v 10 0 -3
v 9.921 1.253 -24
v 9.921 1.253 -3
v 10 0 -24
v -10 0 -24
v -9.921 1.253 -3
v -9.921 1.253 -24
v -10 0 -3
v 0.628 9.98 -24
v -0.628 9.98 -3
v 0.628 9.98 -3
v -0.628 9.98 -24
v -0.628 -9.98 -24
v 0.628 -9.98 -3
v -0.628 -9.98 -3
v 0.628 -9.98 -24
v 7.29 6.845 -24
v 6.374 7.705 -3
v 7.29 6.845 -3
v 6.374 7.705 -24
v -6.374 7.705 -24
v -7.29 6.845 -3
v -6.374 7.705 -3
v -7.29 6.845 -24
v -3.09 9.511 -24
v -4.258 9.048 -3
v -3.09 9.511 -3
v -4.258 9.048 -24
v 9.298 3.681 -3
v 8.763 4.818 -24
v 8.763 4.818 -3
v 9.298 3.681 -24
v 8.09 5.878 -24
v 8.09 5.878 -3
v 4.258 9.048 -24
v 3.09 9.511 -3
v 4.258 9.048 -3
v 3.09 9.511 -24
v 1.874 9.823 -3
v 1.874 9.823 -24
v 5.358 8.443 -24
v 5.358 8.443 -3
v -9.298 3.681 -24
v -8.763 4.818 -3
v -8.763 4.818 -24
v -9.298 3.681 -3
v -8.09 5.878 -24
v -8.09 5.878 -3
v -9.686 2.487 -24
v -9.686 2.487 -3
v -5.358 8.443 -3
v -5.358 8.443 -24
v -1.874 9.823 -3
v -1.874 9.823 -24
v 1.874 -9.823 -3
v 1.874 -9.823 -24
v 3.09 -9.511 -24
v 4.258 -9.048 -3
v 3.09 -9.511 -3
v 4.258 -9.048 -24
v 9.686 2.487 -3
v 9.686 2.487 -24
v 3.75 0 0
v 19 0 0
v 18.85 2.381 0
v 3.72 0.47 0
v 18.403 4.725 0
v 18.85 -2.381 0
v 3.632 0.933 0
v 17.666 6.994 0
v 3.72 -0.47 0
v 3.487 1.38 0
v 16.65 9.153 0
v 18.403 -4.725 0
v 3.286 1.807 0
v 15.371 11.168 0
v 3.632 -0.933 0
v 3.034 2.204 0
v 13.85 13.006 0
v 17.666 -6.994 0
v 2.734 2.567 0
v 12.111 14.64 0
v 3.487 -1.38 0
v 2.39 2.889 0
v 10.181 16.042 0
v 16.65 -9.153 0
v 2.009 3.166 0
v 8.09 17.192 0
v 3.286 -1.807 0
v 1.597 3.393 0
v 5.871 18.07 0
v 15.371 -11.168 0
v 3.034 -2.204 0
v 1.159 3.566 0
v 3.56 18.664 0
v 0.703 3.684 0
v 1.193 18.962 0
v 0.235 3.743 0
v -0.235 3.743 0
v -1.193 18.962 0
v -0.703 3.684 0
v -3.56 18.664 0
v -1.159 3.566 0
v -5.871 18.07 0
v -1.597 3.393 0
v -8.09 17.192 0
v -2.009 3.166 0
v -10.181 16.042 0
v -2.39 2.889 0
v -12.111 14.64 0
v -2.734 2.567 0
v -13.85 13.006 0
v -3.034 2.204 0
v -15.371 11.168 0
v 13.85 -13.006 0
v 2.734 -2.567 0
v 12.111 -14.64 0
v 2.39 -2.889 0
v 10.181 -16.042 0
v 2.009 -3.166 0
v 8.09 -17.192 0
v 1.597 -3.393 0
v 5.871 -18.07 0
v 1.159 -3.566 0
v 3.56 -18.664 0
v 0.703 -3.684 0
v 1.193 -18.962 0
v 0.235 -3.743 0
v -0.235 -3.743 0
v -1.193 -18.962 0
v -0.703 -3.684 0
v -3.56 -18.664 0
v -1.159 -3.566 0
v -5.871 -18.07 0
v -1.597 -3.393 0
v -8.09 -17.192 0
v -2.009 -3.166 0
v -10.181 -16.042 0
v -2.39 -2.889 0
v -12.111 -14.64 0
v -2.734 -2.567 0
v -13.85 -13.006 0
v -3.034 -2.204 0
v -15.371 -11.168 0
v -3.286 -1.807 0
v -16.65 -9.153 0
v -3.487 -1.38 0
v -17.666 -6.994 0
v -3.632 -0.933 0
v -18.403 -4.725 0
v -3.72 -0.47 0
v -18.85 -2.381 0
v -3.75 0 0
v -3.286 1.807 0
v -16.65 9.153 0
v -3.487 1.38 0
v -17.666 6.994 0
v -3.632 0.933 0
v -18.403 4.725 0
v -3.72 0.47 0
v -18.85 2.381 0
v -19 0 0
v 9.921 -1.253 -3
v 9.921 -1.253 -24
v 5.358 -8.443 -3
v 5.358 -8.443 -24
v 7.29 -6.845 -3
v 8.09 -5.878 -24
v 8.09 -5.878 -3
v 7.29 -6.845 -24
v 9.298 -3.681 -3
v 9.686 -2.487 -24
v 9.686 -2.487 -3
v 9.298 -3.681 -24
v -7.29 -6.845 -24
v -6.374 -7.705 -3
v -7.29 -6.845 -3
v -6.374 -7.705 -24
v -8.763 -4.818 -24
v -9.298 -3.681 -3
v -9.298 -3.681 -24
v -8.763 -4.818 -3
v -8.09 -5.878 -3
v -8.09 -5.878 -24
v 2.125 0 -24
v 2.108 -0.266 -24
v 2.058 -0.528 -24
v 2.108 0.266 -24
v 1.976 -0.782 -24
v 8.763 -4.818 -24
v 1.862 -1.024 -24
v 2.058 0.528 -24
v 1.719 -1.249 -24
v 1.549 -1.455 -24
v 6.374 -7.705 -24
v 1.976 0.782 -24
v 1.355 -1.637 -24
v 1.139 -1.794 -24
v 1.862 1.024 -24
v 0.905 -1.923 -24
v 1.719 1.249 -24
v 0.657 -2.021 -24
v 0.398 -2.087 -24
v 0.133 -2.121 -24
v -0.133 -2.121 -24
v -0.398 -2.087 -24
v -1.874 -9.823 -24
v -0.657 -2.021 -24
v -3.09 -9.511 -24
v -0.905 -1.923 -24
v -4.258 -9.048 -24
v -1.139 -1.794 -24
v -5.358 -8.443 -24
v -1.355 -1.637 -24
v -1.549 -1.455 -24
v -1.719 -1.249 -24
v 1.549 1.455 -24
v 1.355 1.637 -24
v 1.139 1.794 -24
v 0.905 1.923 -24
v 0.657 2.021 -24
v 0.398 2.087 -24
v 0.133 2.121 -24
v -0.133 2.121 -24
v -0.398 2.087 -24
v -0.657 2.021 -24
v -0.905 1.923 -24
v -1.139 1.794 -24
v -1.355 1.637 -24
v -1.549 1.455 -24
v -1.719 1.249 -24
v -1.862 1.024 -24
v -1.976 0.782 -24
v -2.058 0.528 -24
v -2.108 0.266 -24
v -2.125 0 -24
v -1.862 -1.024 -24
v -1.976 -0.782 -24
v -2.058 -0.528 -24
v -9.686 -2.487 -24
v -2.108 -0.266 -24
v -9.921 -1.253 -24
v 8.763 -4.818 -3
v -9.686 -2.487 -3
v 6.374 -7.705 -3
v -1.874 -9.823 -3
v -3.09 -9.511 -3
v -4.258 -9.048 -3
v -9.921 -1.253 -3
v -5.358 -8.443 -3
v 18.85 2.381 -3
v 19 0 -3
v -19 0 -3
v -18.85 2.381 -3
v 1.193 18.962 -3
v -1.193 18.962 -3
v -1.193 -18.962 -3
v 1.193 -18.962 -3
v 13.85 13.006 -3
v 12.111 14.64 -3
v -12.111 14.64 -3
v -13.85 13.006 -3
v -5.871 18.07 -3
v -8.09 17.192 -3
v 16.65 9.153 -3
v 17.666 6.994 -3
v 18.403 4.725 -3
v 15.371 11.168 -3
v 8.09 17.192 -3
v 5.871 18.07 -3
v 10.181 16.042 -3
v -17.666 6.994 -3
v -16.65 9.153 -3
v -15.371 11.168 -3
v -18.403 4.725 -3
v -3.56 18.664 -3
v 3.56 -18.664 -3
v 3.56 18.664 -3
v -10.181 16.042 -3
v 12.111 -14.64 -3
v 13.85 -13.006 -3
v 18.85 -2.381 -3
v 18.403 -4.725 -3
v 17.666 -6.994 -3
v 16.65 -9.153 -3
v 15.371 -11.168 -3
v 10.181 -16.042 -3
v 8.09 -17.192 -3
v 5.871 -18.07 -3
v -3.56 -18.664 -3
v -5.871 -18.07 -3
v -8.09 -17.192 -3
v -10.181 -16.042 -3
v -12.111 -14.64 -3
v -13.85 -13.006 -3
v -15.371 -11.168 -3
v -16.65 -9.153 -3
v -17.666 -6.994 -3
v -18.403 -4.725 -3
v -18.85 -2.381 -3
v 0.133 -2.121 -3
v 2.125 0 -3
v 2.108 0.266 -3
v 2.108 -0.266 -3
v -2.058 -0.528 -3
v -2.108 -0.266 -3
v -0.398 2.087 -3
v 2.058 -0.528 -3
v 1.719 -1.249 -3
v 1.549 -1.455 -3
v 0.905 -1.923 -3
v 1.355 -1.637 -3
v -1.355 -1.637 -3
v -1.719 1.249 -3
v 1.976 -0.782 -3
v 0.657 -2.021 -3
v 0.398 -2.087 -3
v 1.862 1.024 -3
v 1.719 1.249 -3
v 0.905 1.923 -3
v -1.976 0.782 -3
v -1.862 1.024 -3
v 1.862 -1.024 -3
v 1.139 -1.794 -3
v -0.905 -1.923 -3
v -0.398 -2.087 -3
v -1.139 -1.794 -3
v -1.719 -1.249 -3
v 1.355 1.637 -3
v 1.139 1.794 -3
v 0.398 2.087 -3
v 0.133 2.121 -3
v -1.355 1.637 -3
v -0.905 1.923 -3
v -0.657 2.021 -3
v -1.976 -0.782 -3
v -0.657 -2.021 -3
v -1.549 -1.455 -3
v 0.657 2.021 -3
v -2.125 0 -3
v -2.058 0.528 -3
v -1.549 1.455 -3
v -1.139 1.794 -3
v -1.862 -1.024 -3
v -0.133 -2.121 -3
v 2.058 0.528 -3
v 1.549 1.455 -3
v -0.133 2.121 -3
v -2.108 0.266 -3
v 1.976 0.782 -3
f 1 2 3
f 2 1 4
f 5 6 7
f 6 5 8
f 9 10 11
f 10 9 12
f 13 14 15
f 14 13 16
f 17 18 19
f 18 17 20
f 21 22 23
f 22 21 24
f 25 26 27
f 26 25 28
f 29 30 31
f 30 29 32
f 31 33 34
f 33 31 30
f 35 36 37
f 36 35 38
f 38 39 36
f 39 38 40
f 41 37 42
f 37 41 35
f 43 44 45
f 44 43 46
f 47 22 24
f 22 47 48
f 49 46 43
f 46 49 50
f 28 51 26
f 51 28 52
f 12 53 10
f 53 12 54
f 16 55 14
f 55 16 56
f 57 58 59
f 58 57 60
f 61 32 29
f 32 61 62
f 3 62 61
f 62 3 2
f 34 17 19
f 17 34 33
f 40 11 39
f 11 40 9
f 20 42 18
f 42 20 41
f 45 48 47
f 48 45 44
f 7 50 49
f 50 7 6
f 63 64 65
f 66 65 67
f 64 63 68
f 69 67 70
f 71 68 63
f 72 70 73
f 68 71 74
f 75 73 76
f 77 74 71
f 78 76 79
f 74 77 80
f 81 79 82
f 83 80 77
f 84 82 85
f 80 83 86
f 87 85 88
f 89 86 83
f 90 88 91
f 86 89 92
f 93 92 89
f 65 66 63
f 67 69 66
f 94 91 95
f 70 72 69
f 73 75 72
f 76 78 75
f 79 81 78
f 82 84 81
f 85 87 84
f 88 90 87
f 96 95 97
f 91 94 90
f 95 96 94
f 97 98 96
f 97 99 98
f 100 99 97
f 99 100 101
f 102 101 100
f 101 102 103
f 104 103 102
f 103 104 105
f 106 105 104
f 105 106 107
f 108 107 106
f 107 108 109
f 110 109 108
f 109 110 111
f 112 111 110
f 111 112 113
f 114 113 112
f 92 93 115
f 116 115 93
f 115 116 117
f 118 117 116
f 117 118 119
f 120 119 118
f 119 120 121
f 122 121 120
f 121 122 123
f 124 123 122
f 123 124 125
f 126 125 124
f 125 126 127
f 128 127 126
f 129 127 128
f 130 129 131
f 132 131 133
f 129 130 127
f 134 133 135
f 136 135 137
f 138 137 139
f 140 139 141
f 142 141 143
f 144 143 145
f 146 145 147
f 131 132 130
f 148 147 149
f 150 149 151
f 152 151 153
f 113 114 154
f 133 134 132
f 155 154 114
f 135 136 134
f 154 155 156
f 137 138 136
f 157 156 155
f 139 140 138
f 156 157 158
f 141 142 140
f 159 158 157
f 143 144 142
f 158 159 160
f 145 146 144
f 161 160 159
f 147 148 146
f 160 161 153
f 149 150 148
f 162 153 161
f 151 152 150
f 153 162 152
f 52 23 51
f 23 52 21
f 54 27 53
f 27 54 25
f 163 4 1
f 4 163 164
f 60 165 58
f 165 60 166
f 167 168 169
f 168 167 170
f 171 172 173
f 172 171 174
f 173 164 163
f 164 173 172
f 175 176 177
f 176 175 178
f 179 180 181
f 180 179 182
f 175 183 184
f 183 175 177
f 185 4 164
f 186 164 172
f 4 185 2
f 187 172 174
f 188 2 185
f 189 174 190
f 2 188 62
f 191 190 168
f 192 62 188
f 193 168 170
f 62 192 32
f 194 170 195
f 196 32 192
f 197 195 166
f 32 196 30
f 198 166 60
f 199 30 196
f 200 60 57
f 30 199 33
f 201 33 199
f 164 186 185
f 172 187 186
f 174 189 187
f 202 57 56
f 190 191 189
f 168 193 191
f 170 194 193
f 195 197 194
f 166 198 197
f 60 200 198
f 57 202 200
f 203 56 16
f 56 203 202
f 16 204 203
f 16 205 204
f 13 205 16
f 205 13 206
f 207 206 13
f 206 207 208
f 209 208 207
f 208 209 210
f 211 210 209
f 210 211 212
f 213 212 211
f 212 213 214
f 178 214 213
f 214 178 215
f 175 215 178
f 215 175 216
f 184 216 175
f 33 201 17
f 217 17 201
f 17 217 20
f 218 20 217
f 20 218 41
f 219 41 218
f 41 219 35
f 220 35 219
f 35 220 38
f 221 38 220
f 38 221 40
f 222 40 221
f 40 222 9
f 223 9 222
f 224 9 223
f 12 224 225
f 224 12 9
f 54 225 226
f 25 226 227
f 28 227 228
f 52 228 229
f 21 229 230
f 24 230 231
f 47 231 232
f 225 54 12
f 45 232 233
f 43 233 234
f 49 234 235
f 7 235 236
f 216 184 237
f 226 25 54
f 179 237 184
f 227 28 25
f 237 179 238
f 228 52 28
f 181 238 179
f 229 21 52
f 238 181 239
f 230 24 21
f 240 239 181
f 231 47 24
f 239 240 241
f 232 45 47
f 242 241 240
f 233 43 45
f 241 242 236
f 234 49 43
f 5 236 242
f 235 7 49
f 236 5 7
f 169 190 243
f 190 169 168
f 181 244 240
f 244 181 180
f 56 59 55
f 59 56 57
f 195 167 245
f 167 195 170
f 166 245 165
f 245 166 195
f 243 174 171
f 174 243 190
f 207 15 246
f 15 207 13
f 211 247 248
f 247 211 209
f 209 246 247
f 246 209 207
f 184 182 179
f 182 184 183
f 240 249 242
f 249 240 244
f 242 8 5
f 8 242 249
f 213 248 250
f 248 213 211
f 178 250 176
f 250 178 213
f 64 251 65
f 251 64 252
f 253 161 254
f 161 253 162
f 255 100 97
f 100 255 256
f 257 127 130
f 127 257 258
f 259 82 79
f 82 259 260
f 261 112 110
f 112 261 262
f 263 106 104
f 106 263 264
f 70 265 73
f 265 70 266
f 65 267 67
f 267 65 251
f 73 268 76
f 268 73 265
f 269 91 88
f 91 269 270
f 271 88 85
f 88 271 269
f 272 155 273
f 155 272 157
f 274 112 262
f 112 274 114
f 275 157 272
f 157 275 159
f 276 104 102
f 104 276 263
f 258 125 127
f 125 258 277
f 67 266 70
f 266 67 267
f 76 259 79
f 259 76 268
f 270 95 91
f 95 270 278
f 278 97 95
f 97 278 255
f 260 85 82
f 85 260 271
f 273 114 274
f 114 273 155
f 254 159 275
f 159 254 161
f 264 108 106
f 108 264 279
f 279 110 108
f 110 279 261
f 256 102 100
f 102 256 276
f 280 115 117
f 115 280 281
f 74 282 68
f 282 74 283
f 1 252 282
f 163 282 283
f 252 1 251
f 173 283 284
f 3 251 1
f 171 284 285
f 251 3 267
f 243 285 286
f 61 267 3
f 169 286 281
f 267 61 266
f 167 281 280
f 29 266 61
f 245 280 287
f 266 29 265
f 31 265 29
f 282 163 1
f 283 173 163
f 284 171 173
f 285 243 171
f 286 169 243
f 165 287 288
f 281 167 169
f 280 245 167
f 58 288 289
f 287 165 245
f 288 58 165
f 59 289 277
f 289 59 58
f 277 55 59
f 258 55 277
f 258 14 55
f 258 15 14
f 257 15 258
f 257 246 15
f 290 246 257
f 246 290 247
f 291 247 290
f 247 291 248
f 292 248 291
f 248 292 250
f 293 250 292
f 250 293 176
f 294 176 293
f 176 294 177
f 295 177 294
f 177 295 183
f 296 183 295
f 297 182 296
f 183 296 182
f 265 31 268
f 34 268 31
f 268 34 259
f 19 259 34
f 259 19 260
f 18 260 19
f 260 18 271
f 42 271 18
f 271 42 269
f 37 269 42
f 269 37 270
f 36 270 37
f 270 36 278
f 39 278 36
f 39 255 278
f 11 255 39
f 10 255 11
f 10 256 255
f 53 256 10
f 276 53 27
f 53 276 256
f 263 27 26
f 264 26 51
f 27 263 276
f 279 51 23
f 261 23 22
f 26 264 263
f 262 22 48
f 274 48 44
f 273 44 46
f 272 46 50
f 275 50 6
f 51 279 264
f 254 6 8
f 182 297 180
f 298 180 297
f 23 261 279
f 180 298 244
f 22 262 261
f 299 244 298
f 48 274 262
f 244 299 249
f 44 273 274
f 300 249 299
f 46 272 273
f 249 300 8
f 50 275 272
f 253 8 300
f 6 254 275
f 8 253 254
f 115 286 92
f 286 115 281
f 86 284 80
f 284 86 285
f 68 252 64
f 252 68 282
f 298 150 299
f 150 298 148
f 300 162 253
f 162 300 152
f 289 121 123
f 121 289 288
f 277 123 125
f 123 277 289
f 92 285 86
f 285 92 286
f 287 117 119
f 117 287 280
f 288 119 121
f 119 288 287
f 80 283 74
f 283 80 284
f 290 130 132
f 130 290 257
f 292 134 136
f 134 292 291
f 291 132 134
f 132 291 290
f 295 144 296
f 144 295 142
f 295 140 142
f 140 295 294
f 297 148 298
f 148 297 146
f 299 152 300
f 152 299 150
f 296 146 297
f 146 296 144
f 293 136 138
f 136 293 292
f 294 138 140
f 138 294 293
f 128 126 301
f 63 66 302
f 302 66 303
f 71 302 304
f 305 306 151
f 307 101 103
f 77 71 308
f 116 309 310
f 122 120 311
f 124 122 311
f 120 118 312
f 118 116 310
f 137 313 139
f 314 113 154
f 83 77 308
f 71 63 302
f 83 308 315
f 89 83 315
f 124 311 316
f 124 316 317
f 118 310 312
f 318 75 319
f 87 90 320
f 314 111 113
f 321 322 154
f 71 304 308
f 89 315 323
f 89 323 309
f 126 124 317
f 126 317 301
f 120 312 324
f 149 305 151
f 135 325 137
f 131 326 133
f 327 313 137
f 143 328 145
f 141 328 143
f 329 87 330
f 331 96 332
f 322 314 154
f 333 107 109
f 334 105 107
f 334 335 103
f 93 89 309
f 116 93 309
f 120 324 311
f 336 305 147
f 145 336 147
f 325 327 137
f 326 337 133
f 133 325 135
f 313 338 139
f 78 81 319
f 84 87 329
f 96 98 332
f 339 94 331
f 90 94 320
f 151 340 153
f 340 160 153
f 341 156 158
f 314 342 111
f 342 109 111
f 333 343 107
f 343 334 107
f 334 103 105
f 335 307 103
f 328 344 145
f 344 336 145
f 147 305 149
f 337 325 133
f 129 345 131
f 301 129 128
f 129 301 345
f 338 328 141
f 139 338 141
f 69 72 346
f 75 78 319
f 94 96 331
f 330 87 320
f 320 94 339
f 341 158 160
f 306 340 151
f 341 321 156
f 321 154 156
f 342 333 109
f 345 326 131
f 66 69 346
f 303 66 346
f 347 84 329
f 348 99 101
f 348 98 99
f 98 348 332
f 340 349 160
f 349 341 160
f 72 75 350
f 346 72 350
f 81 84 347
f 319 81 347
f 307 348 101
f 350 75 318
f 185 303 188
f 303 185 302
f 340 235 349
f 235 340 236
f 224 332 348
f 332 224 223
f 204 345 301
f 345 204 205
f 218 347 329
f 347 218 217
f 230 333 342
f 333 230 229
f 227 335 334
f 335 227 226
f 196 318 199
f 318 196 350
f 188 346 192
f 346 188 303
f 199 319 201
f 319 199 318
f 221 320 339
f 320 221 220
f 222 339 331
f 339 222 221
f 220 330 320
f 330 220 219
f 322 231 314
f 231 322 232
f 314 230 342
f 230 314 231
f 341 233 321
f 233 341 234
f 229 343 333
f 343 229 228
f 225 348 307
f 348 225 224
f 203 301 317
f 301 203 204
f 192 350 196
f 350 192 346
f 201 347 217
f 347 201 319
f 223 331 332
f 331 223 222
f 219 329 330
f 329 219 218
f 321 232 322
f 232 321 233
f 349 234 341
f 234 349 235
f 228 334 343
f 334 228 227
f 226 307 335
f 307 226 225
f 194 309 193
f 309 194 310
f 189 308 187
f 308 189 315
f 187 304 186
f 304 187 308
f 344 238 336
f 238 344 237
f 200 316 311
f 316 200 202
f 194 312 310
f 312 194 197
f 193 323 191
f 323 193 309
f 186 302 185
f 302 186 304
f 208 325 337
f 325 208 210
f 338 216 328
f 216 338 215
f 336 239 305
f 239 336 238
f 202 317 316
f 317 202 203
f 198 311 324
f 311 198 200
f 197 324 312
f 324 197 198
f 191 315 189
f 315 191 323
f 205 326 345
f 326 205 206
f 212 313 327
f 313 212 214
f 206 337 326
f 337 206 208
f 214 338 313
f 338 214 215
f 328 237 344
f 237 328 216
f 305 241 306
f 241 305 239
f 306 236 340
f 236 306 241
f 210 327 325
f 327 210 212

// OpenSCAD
$fn = 50;


difference() {
	union() {
		translate(v = [0, 0, -24.0000000000]) {
			cylinder(h = 24, r = 10.0000000000);
		}
		translate(v = [0, 0, -3.0000000000]) {
			cylinder(h = 3, r = 19.0000000000);
		}
	}
	union() {
		translate(v = [0, 0, 0]) {
			rotate(a = [0, 0, 0]) {
				difference() {
					union() {
						#translate(v = [0, 0, -24.0000000000]) {
							cylinder(h = 24, r = 2.0000000000);
						}
						#translate(v = [0, 0, -3]) {
							cylinder(h = 3, r = 10.0000000000, r1 = 2.1250000000, r2 = 3.7500000000);
						}
						#translate(v = [0, 0, -24.0000000000]) {
							cylinder(h = 24, r = 2.1250000000);
						}
						#translate(v = [0, 0, -24.0000000000]) {
							cylinder(h = 24, r = 2.0000000000);
						}
					}
					union();
				}
			}
		}
	}
}
